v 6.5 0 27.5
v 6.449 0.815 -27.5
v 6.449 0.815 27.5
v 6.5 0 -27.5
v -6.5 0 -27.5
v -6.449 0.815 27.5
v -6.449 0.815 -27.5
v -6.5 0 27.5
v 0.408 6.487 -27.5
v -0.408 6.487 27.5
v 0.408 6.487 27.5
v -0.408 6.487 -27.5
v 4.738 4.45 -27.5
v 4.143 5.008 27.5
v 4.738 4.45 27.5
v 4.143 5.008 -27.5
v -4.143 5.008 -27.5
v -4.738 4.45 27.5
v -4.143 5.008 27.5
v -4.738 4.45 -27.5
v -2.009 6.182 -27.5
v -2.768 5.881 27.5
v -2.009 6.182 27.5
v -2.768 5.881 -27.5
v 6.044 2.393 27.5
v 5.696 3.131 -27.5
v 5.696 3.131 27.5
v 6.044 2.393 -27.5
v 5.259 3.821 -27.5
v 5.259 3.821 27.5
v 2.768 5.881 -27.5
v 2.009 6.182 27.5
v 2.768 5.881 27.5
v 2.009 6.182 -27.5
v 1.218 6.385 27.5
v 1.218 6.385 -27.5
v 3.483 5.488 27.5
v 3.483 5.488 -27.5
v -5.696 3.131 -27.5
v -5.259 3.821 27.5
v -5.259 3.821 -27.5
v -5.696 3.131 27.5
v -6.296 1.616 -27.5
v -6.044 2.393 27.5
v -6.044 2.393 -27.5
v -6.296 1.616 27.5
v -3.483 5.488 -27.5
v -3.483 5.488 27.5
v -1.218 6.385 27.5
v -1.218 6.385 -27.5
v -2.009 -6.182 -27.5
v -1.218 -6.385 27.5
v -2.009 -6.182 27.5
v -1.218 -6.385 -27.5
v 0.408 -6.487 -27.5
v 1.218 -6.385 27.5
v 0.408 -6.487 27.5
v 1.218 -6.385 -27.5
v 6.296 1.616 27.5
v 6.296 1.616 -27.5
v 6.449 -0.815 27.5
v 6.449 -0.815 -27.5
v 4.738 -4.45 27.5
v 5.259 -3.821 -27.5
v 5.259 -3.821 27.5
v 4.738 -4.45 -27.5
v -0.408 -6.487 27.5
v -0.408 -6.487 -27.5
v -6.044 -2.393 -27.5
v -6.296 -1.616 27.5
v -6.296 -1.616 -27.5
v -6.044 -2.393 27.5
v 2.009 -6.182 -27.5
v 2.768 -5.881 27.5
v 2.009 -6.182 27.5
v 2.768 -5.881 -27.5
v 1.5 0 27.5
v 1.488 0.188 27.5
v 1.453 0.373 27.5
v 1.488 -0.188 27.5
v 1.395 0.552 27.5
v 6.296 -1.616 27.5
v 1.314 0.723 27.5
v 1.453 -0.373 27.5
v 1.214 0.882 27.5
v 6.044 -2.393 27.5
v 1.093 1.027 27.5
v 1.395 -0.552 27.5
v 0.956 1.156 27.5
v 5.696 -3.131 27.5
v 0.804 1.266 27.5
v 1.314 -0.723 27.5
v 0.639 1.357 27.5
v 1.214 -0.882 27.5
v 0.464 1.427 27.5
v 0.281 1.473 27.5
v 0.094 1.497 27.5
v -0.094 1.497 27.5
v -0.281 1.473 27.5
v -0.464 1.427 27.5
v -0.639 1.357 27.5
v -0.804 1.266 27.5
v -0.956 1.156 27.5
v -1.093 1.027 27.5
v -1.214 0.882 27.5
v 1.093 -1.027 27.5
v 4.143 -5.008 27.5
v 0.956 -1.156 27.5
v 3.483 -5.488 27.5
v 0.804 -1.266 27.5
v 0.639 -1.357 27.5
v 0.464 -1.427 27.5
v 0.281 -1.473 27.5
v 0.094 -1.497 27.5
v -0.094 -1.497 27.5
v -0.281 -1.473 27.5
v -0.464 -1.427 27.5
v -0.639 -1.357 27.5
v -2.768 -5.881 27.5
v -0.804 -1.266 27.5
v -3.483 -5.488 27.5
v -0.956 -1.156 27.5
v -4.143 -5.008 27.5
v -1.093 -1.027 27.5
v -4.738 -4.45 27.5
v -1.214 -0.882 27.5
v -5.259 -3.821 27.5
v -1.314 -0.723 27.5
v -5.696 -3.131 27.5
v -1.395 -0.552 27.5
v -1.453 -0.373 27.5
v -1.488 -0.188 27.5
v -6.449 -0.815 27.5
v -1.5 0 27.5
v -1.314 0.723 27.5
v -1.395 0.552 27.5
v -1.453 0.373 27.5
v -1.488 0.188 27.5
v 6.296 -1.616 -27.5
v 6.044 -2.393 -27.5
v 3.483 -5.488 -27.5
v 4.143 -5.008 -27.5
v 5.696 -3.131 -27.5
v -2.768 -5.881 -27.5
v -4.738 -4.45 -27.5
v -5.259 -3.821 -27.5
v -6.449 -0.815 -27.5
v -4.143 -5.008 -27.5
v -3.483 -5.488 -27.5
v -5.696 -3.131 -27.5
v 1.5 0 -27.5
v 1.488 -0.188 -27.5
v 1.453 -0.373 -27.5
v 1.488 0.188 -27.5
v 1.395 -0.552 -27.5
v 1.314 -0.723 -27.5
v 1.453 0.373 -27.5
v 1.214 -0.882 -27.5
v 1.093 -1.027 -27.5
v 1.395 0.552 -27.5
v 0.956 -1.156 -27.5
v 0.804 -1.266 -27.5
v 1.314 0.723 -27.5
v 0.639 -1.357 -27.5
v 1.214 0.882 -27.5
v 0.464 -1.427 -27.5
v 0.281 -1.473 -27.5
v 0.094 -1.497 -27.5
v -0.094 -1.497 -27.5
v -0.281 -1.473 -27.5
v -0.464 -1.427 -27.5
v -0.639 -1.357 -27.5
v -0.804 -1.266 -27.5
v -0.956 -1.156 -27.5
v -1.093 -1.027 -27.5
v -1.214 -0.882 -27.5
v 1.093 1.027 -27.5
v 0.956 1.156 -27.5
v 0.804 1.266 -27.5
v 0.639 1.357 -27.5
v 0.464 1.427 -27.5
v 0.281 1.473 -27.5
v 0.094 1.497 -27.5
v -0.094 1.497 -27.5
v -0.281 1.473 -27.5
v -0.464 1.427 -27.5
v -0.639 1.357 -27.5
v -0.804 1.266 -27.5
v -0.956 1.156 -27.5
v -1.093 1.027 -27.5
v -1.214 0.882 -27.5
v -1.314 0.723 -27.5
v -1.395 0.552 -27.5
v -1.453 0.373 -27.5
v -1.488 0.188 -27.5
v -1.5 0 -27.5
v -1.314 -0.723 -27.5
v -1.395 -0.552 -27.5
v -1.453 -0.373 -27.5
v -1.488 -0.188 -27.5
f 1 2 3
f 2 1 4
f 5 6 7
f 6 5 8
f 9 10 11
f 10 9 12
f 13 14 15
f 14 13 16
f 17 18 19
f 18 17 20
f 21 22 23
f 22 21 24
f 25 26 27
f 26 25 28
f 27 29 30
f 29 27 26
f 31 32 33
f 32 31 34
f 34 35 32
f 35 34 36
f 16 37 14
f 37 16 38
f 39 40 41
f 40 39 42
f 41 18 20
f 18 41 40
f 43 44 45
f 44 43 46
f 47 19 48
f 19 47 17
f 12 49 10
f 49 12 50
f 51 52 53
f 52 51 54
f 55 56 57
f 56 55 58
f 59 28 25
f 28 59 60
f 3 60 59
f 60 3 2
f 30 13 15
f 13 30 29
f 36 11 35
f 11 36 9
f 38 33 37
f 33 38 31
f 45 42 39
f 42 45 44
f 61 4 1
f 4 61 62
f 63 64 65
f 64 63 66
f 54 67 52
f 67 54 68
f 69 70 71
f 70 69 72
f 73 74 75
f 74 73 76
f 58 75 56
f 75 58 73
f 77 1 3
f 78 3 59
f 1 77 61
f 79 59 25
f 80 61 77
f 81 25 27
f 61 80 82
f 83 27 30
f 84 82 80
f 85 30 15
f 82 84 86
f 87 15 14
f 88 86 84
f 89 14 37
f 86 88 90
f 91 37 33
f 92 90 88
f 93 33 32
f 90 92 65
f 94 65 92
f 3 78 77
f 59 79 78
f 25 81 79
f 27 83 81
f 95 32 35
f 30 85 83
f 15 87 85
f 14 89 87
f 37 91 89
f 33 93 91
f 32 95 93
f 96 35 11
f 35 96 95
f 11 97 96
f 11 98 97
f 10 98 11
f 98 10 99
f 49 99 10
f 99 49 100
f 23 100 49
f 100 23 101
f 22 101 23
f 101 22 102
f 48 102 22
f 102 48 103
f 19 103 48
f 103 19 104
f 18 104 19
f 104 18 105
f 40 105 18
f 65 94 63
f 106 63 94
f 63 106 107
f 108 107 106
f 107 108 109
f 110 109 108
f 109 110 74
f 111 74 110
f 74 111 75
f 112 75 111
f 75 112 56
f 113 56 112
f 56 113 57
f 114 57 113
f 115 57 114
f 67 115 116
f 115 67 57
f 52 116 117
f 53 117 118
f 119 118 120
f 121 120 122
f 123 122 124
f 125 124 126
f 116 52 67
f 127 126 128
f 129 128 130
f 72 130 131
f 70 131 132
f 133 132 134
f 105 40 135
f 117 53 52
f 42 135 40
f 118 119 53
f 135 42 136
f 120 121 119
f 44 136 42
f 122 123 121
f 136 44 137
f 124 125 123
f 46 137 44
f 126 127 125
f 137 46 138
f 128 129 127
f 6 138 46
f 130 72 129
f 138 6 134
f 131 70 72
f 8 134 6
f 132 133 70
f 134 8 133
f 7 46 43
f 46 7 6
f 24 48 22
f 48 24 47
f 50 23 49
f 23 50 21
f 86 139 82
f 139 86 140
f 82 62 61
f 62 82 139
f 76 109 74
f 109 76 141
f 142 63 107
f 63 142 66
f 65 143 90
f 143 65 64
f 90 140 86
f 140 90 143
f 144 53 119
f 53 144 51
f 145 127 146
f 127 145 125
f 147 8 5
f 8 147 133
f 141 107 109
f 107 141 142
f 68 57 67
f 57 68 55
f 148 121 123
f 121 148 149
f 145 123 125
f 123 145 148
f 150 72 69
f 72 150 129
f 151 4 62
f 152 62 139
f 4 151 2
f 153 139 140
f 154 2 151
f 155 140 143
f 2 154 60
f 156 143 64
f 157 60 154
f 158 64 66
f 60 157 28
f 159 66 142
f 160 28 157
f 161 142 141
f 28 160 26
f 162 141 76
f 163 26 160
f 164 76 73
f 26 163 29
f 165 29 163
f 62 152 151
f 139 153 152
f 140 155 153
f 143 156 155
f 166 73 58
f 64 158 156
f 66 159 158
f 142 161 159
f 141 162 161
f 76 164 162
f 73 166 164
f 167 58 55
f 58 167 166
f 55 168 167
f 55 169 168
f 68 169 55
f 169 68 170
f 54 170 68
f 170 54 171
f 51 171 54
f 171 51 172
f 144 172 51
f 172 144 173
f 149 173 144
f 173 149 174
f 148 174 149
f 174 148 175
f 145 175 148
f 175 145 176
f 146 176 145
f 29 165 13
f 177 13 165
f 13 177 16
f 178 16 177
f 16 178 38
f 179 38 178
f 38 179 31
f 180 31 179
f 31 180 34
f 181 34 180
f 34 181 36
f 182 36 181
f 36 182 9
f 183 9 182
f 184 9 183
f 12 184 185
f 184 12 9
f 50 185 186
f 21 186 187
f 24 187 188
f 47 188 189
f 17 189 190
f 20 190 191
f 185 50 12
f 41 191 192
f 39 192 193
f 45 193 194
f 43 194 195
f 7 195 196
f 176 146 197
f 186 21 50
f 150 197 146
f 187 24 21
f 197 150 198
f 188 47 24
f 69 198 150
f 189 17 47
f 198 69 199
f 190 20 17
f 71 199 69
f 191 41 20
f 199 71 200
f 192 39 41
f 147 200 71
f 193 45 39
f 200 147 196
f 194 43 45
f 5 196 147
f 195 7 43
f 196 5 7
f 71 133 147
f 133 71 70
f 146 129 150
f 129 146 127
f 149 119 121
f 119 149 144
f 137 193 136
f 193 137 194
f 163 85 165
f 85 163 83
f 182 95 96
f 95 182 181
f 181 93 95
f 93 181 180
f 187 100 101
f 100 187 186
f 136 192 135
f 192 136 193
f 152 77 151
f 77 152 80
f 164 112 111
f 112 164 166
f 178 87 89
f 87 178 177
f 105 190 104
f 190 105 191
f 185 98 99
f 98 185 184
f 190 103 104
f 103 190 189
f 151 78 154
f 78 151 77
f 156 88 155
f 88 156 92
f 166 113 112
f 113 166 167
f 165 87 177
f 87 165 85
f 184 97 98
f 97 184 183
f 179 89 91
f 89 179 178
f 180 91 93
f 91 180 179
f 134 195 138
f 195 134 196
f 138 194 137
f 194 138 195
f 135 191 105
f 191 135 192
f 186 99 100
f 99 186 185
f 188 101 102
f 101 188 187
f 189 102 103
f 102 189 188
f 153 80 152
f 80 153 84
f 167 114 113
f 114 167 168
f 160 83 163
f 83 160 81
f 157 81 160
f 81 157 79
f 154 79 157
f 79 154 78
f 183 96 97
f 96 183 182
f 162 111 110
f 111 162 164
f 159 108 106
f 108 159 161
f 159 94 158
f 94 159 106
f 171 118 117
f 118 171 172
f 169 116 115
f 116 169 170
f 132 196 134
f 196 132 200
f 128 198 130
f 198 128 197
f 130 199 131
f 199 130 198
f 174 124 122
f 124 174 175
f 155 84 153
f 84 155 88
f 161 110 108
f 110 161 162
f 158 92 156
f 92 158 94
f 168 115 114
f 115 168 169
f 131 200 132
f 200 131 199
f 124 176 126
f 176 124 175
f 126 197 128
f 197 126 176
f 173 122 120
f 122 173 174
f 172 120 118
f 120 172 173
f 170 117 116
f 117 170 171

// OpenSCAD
$fn = 50;


difference() {
	union() {
		translate(v = [0, 0, -27.5000000000]) {
			cylinder(h = 55, r = 6.5000000000);
		}
	}
	union() {
		translate(v = [0, 0, -100.0000000000]) {
			cylinder(h = 200, r = 1.5000000000);
		}
	}
}
